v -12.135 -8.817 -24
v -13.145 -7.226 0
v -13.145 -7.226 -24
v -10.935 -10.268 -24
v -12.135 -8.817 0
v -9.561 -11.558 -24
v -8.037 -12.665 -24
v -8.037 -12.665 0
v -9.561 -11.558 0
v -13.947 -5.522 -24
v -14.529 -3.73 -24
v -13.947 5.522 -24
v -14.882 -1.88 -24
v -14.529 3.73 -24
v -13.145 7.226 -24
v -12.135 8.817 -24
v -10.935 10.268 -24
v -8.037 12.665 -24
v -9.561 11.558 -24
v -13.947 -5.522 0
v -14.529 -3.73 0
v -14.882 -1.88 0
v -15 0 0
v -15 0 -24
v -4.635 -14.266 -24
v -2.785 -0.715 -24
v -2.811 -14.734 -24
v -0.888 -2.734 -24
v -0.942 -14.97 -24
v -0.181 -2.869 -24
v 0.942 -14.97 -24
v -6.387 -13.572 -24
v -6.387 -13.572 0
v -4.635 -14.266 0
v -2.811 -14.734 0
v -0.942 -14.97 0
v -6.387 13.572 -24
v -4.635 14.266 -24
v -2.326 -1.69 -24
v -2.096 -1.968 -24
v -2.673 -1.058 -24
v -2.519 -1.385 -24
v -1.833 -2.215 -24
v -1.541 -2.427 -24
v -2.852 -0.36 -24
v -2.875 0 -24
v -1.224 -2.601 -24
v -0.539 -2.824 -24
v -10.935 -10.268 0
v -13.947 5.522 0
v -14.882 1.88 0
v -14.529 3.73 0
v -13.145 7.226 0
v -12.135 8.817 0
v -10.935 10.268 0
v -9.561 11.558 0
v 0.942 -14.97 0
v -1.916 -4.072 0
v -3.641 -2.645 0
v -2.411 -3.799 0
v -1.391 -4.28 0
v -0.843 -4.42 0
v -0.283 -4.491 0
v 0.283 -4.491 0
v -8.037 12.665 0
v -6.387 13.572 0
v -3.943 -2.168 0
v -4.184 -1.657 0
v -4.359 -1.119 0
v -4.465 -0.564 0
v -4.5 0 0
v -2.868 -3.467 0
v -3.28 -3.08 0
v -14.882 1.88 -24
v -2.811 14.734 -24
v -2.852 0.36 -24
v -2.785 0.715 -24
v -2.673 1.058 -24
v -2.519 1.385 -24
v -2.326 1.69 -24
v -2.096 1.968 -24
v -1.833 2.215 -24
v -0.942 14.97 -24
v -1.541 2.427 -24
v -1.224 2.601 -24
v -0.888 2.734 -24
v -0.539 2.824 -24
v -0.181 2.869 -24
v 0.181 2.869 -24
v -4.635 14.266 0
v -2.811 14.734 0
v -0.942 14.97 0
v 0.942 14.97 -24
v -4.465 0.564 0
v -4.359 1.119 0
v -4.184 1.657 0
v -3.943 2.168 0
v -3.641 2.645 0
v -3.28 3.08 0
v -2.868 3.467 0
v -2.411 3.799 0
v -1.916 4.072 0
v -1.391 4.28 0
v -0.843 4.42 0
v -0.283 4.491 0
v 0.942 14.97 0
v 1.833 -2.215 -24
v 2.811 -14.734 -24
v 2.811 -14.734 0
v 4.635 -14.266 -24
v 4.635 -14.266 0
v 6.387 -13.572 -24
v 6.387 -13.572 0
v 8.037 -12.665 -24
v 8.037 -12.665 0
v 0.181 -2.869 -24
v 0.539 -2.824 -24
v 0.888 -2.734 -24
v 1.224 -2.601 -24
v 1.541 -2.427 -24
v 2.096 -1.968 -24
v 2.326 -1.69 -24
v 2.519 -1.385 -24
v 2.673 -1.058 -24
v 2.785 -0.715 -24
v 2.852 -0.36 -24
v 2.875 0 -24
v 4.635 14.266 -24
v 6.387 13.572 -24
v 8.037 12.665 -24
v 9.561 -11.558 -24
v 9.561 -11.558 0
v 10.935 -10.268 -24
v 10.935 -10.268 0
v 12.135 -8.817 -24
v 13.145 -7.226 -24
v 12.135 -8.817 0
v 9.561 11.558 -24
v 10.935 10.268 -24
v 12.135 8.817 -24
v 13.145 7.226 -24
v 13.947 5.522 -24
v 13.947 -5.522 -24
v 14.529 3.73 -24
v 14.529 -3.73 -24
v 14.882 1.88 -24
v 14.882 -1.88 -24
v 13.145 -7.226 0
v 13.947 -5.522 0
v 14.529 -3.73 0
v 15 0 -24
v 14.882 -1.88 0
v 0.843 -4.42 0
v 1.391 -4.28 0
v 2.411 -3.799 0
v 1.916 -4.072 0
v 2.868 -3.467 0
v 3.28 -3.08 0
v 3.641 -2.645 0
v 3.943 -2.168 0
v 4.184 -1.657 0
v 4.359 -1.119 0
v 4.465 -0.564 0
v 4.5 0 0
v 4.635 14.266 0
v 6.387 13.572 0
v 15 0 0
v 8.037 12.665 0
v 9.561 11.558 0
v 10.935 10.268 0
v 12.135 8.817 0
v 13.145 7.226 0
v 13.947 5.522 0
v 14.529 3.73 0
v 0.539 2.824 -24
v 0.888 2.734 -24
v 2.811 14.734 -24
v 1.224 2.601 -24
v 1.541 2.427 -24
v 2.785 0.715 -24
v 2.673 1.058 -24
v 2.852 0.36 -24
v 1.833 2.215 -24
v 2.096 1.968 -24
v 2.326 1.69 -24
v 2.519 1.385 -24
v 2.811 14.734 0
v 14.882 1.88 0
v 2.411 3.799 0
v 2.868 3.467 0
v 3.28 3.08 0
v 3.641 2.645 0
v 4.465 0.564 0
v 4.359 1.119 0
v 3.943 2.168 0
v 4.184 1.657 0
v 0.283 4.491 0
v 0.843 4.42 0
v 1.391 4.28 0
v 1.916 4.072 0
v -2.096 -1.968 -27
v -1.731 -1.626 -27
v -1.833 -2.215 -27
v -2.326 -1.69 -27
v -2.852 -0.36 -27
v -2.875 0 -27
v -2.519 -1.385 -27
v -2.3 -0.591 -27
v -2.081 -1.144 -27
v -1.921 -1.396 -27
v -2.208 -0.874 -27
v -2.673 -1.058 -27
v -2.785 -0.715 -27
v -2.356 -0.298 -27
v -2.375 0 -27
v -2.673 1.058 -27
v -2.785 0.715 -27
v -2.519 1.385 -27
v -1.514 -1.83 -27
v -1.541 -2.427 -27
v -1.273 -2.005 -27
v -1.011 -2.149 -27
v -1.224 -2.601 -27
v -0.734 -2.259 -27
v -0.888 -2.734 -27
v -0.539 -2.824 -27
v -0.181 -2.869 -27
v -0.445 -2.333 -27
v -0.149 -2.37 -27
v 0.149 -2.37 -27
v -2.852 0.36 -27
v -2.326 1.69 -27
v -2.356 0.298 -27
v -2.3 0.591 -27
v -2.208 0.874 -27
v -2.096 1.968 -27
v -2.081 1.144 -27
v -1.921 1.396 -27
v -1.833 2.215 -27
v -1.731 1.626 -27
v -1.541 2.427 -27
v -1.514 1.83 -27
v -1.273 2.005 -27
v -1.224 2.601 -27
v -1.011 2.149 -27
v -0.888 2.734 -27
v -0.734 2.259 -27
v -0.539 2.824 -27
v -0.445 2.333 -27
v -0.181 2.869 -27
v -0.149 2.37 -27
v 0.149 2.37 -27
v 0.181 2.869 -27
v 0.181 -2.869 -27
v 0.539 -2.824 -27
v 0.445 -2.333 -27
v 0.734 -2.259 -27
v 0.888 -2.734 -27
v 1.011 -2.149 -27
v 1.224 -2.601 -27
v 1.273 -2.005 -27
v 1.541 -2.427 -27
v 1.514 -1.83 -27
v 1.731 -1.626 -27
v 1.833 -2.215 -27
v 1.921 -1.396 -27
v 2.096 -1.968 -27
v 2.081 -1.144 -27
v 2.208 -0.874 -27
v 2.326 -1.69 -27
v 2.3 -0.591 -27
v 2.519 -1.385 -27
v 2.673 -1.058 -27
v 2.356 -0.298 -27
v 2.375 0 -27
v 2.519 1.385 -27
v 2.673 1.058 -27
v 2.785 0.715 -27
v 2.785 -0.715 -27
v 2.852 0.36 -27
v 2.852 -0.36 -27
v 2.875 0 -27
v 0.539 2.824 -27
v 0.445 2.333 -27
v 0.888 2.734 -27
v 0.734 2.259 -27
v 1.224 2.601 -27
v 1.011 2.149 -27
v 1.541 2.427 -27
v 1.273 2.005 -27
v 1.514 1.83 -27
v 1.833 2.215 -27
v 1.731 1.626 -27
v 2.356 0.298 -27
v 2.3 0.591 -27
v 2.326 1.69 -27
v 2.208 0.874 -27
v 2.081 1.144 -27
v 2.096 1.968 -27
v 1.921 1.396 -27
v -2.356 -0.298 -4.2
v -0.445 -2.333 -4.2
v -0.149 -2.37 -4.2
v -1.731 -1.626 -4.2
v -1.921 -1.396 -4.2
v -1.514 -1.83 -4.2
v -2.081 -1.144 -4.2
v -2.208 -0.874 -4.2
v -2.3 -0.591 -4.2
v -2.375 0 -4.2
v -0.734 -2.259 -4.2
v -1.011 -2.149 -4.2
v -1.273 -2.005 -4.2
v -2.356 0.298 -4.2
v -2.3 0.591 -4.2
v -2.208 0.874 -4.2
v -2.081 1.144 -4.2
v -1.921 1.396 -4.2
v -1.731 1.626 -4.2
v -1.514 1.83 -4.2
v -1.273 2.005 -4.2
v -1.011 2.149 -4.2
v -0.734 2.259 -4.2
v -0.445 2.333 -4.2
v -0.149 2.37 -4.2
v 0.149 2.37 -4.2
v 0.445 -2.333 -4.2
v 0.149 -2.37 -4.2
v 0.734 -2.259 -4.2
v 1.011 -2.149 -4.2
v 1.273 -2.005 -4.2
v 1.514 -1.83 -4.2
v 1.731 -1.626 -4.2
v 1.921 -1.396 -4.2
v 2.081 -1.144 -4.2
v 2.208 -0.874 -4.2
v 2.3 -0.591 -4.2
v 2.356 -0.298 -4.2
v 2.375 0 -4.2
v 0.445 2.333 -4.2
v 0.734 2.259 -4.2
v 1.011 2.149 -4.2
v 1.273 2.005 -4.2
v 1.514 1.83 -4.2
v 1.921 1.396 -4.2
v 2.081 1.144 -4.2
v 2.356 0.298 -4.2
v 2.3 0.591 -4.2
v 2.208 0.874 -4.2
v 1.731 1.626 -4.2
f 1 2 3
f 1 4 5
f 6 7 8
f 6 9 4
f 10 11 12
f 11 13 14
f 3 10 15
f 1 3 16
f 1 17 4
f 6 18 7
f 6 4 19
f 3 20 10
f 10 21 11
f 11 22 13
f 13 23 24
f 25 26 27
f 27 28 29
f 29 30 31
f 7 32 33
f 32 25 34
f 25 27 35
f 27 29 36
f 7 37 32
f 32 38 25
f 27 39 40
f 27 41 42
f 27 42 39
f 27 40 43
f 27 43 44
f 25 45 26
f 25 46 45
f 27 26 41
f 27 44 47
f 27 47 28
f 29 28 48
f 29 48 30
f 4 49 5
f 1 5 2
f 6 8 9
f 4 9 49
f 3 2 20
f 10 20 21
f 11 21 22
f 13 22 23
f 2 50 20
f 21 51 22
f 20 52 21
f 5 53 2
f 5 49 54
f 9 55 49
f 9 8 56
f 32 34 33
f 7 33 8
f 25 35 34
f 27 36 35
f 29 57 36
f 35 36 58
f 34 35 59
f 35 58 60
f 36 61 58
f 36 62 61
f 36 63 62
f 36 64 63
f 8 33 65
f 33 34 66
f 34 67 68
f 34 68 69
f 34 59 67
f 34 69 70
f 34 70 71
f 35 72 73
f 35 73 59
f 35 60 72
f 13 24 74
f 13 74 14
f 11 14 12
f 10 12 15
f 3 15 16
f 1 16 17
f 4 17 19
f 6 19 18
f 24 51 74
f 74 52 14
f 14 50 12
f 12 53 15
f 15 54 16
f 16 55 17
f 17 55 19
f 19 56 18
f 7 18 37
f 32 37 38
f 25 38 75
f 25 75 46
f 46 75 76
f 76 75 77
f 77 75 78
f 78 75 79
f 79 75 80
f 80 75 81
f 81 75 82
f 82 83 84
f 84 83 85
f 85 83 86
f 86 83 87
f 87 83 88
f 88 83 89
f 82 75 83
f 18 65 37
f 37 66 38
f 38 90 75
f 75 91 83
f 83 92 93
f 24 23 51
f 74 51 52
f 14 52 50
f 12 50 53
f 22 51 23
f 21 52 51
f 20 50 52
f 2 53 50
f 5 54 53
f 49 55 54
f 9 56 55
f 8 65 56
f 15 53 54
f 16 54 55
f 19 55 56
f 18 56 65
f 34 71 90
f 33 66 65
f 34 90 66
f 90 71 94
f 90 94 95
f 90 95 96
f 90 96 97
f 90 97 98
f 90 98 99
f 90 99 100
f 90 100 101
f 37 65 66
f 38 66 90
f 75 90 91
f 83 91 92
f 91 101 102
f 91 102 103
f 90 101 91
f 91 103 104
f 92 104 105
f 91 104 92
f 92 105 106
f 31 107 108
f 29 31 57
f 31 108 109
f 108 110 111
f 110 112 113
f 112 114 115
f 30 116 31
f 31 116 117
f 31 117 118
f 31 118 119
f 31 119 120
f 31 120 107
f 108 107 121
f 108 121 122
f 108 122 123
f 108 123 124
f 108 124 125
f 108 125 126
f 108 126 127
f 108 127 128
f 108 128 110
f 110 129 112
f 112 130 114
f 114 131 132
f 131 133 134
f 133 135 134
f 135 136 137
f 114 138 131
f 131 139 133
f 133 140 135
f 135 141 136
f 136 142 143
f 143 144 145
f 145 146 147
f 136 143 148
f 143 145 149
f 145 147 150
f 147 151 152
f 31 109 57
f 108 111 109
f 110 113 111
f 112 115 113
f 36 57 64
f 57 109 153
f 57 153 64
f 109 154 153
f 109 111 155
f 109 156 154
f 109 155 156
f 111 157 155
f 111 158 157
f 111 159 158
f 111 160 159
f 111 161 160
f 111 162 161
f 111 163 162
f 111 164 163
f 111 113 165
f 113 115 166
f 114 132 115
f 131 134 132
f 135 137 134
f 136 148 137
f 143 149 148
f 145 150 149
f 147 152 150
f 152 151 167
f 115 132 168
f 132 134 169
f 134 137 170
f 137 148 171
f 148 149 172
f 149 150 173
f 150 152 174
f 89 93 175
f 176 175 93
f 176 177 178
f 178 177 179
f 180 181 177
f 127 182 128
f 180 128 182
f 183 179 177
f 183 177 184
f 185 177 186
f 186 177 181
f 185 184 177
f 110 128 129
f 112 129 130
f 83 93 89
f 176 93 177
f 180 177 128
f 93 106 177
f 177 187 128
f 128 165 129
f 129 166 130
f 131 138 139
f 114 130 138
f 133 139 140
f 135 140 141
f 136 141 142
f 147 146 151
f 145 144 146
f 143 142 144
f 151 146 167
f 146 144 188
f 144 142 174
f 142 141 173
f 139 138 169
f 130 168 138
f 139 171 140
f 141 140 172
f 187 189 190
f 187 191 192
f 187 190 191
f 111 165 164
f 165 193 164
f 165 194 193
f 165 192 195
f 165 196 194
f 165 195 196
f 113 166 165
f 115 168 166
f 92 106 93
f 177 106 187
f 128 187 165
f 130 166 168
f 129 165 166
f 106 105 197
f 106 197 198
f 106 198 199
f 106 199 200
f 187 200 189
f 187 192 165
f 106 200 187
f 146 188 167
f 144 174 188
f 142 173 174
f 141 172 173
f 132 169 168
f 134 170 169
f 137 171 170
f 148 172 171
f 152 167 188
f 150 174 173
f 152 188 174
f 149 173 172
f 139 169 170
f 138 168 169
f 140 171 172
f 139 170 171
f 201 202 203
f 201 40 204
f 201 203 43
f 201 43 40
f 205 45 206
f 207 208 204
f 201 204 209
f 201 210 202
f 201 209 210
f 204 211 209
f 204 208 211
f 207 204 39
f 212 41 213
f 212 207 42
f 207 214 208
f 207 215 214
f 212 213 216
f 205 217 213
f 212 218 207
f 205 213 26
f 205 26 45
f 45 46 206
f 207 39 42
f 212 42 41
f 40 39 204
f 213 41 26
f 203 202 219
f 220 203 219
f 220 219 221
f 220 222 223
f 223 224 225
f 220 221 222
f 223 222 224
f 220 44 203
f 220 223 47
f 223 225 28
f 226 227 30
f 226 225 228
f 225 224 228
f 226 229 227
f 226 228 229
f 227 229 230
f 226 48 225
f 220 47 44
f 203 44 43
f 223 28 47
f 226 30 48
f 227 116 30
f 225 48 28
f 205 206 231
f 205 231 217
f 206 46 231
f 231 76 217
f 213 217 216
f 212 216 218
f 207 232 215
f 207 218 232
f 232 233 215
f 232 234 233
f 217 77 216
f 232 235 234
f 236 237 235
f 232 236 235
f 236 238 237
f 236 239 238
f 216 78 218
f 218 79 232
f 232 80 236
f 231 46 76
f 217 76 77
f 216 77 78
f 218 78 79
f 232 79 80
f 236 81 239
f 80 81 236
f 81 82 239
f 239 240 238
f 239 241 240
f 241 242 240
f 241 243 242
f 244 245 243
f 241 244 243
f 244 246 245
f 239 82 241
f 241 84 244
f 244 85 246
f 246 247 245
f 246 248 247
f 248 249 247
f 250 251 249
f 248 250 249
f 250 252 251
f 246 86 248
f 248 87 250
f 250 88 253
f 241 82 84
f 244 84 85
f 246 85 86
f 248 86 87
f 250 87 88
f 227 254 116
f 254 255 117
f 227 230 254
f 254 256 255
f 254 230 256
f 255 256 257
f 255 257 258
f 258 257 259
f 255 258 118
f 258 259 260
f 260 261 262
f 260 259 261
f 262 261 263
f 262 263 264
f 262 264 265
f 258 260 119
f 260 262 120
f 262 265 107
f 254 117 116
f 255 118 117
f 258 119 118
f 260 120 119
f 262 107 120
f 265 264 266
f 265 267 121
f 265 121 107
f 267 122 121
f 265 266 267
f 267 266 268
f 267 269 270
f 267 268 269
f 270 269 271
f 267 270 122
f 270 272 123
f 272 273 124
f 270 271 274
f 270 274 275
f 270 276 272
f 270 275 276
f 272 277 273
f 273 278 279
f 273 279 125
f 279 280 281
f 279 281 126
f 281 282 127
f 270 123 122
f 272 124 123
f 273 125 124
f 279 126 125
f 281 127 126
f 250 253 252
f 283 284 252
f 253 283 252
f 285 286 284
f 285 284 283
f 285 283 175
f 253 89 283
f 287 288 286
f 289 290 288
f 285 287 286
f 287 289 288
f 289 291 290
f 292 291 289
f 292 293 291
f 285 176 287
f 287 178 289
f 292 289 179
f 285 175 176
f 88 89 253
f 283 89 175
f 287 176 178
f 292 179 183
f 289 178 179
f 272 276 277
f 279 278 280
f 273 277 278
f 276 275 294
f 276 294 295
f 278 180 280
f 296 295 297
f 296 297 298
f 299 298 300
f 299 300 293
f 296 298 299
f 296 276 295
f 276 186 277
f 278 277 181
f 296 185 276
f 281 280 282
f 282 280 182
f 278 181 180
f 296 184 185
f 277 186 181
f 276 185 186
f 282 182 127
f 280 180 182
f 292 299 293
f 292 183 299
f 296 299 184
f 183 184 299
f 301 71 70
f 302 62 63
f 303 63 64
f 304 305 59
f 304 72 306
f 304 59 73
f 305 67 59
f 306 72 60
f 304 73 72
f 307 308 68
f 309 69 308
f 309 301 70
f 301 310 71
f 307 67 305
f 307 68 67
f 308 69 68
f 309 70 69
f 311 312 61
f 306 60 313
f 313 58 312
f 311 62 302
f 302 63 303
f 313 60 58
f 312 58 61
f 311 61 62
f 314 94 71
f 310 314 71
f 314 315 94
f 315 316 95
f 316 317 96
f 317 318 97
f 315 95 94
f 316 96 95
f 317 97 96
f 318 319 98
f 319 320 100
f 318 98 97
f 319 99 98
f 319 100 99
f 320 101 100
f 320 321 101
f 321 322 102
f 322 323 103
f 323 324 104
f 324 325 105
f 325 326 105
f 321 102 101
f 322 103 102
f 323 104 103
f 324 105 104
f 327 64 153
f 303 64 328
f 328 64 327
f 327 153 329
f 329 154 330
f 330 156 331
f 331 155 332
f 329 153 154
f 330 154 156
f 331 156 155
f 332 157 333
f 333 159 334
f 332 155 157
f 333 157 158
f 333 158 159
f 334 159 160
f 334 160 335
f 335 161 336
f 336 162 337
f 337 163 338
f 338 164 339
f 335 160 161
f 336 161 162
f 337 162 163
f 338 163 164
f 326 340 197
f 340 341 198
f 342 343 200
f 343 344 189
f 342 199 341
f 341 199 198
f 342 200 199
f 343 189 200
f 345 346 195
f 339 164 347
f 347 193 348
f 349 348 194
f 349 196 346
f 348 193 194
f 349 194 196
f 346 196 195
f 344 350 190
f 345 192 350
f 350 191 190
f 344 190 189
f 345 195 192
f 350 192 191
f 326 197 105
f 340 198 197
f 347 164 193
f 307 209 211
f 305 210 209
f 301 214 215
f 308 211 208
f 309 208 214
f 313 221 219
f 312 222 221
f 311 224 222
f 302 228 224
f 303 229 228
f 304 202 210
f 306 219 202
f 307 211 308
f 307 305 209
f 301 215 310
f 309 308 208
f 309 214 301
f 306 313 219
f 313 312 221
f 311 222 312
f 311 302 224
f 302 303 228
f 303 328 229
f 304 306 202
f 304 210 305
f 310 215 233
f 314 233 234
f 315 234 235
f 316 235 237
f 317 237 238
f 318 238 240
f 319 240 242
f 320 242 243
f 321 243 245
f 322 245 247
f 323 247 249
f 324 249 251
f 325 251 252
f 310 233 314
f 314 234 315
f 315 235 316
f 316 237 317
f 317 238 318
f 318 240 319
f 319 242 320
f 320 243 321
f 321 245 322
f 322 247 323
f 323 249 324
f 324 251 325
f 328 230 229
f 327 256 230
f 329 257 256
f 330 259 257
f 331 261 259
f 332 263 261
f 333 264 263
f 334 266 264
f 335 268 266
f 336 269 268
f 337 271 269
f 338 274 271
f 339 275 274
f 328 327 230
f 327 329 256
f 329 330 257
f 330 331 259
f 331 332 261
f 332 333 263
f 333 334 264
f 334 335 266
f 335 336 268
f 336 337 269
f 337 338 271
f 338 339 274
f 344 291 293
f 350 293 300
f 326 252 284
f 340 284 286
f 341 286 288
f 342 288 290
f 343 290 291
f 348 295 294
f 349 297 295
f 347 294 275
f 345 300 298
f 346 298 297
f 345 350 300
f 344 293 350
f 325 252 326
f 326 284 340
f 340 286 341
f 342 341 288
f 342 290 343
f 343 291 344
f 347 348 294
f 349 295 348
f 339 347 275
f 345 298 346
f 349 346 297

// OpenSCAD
$fn = 50;


difference() {
	union() {
		translate(v = [0, 0, -24.0000000000]) {
			cylinder(h = 24, r = 15.0000000000);
		}
		#translate(v = [0, 0, -27.0000000000]) {
			cylinder(h = 27, r = 2.8750000000);
		}
	}
	union() {
		translate(v = [0, 0, 0]) {
			rotate(a = [0, 0, 0]) {
				difference() {
					union() {
						translate(v = [0, 0, -27.0000000000]) {
							cylinder(h = 27, r = 2.2500000000);
						}
						translate(v = [0, 0, -4.2000000000]) {
							cylinder(h = 4.2000000000, r1 = 2.3750000000, r2 = 4.5000000000);
						}
						translate(v = [0, 0, -27.0000000000]) {
							cylinder(h = 27, r = 2.3750000000);
						}
						translate(v = [0, 0, -27.0000000000]) {
							cylinder(h = 27, r = 2.2500000000);
						}
					}
					union();
				}
			}
		}
	}
}
